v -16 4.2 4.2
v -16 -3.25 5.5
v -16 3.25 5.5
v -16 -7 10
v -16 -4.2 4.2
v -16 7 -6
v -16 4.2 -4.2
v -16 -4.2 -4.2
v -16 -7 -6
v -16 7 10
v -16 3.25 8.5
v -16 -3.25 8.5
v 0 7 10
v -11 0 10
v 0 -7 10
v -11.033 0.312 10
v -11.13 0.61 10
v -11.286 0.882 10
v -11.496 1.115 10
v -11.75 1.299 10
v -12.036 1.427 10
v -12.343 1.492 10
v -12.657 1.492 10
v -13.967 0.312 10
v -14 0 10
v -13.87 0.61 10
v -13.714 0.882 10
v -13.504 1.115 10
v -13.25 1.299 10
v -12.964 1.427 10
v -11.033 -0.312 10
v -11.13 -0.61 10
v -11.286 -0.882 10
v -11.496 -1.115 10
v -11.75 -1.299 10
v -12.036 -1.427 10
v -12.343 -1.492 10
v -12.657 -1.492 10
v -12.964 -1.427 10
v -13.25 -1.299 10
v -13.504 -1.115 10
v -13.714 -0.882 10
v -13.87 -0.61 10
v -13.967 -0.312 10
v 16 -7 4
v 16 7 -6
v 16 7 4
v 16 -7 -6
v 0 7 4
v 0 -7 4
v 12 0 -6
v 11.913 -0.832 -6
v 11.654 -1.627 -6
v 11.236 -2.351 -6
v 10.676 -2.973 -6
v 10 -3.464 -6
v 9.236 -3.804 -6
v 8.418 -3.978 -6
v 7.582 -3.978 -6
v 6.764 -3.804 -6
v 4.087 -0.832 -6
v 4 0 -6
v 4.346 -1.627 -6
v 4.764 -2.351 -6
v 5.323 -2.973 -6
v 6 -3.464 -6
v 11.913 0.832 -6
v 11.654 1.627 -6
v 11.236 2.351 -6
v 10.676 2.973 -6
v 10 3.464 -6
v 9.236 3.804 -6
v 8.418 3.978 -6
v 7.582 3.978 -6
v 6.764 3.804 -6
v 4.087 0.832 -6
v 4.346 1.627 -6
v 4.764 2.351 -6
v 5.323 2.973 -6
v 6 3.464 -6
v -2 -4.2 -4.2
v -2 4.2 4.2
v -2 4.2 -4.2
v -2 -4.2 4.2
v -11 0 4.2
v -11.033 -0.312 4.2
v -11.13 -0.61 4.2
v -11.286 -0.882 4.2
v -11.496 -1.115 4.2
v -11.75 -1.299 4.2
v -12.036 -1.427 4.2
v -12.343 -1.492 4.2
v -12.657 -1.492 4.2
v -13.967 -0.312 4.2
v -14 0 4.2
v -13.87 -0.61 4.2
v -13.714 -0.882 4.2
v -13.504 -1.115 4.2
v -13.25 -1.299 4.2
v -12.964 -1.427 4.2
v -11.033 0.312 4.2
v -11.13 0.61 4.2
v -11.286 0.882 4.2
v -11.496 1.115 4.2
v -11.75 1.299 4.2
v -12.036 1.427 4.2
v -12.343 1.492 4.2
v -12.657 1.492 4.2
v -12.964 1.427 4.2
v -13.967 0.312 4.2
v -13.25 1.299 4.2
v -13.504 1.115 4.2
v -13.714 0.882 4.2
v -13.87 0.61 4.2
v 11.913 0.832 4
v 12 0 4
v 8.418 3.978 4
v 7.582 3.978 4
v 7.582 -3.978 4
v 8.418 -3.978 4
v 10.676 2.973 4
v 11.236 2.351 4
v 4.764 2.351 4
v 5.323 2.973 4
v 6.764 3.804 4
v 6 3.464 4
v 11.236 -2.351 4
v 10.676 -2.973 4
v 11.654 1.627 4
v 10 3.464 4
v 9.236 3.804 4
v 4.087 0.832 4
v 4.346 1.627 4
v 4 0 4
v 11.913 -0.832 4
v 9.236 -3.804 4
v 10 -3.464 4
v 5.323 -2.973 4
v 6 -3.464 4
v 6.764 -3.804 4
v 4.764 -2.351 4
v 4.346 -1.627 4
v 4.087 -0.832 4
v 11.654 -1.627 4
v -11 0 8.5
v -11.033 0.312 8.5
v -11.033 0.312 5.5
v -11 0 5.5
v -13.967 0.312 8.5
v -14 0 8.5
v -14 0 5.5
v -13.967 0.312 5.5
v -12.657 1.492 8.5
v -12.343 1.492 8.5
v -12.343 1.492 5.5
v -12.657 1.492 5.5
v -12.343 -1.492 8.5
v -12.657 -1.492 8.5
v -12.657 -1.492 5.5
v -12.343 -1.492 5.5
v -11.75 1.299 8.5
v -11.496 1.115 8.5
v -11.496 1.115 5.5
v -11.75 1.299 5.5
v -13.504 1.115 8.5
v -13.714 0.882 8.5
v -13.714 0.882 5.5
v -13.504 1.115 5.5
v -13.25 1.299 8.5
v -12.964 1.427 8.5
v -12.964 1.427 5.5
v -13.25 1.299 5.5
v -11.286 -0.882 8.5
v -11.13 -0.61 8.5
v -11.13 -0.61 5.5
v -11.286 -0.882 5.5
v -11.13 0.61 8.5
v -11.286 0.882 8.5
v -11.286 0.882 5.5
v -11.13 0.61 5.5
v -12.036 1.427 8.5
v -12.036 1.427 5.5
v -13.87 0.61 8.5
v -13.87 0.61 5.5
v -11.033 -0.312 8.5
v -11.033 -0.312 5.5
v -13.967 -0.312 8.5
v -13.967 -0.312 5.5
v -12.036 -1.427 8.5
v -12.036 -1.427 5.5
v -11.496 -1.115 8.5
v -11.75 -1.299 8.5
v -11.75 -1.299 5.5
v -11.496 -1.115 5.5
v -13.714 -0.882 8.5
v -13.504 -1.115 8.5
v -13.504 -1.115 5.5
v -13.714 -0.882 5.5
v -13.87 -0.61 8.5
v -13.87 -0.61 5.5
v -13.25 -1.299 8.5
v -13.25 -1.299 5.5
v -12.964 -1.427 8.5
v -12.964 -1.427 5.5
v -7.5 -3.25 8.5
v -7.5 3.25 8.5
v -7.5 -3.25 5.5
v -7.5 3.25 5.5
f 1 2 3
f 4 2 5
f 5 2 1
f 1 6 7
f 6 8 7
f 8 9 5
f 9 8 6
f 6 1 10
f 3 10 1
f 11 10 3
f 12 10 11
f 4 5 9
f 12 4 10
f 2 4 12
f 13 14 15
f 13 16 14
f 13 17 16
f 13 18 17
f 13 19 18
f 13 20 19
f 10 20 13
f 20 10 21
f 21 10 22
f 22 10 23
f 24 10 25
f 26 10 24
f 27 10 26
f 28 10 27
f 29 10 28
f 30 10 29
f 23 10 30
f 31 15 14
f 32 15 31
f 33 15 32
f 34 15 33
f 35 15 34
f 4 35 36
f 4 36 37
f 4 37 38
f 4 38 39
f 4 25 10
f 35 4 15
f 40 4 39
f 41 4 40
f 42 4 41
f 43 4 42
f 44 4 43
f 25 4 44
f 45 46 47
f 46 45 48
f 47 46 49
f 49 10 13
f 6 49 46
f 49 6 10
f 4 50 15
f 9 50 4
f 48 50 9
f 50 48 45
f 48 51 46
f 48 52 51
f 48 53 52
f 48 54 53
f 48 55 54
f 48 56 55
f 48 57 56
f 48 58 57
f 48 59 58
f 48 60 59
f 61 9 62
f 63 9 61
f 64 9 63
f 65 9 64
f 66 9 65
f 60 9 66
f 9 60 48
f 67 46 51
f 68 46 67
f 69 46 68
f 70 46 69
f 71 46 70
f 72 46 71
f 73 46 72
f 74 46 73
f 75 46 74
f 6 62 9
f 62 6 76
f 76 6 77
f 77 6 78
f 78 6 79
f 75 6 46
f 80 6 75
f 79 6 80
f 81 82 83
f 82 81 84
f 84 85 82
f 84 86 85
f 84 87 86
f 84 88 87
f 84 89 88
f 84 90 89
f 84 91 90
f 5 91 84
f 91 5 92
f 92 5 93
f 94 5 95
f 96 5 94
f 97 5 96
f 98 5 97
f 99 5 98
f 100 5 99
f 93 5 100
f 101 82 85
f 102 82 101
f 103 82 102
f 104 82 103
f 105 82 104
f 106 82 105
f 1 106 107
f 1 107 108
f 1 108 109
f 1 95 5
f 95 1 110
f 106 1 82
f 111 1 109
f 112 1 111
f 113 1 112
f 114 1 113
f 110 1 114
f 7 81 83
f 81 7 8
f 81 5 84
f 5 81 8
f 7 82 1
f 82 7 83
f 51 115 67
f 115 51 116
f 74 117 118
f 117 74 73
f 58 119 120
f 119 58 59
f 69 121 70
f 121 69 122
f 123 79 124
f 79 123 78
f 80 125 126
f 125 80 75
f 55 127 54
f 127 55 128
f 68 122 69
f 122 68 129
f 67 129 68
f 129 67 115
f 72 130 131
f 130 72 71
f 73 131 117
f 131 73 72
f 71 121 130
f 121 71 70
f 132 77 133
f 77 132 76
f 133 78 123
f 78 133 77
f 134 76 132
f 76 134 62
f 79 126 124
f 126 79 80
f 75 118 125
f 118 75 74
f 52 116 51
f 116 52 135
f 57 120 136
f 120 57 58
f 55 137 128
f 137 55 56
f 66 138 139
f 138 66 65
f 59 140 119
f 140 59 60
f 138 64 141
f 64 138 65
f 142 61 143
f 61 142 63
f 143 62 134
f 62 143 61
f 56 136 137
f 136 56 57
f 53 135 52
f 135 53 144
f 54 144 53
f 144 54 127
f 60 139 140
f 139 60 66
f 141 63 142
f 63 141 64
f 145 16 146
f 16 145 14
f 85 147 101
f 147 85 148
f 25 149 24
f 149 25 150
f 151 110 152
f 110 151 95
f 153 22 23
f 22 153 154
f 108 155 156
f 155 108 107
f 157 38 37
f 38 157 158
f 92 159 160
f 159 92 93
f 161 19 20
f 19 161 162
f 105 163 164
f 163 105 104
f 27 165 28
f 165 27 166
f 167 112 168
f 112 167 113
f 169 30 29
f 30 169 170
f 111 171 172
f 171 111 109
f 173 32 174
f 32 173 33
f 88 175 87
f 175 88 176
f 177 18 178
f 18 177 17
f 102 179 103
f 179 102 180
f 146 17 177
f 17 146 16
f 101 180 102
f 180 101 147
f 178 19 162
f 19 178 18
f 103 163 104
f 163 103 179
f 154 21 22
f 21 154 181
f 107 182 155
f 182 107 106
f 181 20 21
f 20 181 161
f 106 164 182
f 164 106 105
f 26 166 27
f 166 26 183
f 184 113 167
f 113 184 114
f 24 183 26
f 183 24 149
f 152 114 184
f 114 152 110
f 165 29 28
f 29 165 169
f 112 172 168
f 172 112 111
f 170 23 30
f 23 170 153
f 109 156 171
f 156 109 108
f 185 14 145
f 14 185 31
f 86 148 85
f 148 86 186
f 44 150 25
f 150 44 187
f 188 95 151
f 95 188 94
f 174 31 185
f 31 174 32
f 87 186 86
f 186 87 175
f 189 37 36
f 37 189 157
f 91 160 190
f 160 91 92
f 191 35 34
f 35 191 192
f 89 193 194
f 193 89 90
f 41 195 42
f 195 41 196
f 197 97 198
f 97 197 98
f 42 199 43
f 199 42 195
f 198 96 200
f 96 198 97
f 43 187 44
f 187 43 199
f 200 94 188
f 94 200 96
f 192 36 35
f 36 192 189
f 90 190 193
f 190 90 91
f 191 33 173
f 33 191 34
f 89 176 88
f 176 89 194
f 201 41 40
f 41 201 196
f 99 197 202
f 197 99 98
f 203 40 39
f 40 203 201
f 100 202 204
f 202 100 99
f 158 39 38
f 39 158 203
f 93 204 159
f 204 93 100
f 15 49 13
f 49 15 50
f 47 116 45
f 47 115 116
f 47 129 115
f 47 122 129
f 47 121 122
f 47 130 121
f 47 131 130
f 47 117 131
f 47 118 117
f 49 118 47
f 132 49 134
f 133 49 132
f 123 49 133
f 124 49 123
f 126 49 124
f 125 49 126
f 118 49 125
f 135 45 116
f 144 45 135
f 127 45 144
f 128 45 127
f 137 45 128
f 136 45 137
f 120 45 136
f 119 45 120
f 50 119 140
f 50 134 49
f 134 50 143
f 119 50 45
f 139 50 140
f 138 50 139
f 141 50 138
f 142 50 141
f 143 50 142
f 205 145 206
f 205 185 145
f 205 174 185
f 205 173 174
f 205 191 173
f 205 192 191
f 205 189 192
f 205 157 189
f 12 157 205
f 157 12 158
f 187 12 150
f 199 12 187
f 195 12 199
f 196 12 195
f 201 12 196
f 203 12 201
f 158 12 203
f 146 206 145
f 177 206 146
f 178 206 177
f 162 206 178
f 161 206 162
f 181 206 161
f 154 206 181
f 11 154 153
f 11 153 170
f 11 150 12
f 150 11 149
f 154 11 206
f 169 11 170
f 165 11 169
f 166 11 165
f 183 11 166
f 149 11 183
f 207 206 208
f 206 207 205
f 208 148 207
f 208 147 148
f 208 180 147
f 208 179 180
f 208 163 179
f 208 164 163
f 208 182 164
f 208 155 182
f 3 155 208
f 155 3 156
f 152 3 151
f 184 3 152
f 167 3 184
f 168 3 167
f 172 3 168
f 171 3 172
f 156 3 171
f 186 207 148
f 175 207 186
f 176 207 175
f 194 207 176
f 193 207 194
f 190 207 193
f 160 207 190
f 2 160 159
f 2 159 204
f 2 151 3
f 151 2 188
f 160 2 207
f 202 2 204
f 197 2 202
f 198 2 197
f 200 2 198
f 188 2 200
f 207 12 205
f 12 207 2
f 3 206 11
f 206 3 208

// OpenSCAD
beam_width    = 8;
hole_diameter = 5.1;
hole_radius   = hole_diameter / 2;


union() {
    difference() {
        cube([32,14,20], center=true);

        translate([0,0,-16])
        cube([40,16,20], center=true);

        translate([-27,0,0])
        rotate([0,90,0])
        cube([8.4,8.4,50], center=true);

        translate([8,0,-20])
        cylinder(r=4, h=40, $fn=30);

        translate([-12.5,0,0])
        cylinder(r=1.5, h=40, $fn=30);

        translate([10,0,14])
        cube(20,16,14, center=true);

        translate([-16,0,7])
        cube([17,6.5,3], center=true);

    }

}
